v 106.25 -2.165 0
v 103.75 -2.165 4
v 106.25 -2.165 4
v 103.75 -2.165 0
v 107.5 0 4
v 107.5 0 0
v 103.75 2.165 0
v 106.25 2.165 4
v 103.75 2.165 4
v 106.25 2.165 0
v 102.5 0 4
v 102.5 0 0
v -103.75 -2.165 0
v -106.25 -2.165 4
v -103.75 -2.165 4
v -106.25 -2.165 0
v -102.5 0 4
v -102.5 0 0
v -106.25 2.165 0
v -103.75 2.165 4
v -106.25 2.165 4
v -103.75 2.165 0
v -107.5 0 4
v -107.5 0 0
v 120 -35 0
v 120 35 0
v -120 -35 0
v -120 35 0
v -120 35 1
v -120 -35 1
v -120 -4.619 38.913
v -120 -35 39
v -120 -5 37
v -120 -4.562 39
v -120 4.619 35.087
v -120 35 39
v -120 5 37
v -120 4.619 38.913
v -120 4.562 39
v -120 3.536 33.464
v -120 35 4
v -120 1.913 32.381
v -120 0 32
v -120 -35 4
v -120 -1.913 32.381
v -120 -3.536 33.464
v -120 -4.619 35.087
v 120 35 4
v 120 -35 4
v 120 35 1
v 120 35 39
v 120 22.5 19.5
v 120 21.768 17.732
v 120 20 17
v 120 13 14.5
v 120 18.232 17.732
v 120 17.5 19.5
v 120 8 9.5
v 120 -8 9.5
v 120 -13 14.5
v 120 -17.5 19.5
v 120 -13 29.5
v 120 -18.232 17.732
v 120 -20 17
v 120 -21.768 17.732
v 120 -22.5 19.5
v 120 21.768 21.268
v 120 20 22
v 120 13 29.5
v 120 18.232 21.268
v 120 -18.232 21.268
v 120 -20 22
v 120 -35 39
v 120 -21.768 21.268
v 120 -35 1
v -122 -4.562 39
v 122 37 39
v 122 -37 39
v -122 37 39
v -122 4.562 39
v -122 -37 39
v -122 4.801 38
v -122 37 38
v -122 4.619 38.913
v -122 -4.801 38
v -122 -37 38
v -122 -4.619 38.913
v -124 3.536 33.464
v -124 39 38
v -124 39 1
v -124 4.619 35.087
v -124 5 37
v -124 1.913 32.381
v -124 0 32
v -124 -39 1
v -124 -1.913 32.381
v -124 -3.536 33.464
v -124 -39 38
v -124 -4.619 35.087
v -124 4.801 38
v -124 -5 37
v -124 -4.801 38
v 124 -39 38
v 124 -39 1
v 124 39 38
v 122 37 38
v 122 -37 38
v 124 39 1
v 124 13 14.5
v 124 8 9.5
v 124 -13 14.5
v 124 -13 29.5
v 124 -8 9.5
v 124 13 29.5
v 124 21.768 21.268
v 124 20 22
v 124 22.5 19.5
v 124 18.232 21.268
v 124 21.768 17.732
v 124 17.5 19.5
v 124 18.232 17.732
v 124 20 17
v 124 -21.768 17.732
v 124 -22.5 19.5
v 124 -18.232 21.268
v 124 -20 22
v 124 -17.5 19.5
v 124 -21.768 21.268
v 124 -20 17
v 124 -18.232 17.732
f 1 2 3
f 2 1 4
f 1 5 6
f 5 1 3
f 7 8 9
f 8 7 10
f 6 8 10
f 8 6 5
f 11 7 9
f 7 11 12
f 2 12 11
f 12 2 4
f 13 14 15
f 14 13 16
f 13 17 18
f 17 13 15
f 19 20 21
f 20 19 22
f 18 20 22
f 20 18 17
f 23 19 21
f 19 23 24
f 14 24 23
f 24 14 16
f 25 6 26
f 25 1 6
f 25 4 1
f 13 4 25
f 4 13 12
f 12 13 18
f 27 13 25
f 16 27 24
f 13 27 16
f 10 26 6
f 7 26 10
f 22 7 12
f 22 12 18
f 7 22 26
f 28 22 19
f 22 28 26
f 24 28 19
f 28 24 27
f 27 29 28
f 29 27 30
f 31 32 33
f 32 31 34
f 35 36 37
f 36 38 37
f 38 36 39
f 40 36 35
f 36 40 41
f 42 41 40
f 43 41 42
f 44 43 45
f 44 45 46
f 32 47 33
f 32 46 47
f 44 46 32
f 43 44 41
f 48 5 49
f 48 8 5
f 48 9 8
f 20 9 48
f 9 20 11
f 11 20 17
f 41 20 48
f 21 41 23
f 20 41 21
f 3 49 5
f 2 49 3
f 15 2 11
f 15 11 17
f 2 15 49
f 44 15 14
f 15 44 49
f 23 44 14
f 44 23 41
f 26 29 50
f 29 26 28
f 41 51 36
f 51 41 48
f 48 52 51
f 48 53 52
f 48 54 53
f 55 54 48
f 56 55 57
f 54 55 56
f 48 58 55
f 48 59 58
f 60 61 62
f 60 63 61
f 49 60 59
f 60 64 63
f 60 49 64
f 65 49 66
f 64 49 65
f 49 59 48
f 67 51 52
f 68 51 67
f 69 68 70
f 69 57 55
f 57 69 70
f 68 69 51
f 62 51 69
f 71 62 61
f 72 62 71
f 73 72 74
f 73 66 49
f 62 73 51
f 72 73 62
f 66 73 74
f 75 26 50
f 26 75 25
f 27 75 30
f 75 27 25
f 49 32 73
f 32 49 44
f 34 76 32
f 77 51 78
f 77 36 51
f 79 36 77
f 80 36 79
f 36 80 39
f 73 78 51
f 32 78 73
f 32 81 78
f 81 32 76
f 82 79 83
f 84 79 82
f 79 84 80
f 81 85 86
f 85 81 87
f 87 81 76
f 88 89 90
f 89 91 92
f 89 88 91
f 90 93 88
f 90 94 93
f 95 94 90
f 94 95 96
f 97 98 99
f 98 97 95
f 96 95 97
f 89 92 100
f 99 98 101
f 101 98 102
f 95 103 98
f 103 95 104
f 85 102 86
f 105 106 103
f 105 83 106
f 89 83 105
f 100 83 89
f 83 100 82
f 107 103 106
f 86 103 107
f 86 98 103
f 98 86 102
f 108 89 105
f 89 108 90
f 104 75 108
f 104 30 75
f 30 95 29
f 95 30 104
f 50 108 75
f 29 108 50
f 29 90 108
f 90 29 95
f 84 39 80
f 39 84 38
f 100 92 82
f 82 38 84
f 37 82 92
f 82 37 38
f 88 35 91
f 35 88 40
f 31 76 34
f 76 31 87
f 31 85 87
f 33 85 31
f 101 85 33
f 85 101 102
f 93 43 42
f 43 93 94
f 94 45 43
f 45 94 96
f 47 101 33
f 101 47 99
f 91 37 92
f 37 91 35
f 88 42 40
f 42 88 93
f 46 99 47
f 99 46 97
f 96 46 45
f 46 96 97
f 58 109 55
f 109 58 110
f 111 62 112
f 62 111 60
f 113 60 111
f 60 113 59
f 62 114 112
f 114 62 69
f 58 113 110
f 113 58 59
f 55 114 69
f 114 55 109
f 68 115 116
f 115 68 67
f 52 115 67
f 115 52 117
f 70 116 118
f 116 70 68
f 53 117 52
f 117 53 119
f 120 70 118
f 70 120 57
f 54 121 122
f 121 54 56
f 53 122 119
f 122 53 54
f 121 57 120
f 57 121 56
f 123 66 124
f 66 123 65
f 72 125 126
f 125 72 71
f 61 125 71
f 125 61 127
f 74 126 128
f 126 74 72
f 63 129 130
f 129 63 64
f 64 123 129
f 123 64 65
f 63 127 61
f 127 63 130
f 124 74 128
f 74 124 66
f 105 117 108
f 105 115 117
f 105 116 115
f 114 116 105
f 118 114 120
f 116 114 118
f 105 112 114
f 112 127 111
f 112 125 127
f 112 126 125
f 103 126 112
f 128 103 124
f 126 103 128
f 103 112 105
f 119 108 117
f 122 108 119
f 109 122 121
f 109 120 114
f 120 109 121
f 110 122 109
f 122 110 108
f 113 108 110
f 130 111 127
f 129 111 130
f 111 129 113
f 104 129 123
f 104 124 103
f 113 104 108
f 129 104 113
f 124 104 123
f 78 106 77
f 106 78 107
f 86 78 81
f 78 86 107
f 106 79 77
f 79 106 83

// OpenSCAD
// OpenSCAD for the bottom of a box to hold the power supplies
//          110V 60hz to 12V conversion for Bert
//          Origin = center, bottom of bottom plate

height    = 35;        // Inside height (1/2 high)
length    =240;        // Inside length
thickness =  4;        // Wall and bottom thickness
width     = 70;        // Inside width

// Bottom plate. 
// x = length
// y = width
module base(x,y) {
    $fn=100;
    linear_extrude(thickness,center=true,convexity=10) {
       square([x,y],center=true); 
    }
}

module end(y,z) {
   linear_extrude(thickness,center=true,convexity=10) {
       square([y,z],center=true); 
    } 
}
module side(x,z) {
   linear_extrude(thickness,center=true,convexity=10) {
       square([x,z],center=true); 
    } 
}

module ac_wire_opening() {
    screw_separation = 40; // center-center between screws
    screw_radius = 2.5;    // screw hole in socket
    // Dimension C-13 female plug
    plug_height = 20;  // Socket height
    plug_width  = 26;  // Socket width
    plug_top_edge=16;
    plug_cut = (plug_width-plug_top_edge)/2; // diagonal
    
    
    linear_extrude(thickness+1,center=true,convexity=10) {
       polygon([[-plug_width/2,plug_height/2],
                [plug_width/2,plug_height/2],
                [plug_width/2,plug_cut-plug_height/2],
                [plug_width/2-plug_cut,-plug_height/2],
                [-plug_width/2+plug_cut,-plug_height/2],
                [-plug_width/2,plug_cut-plug_height/2]]); 
    } 
    translate([screw_separation/2,0,0])
    cylinder(thickness+1,screw_radius,screw_radius,true);
    translate([-screw_separation/2,0,0])
    cylinder(thickness+1,screw_radius,screw_radius,true);
}

module bottom_screw_holes(x) {
    dx = 15;           // Screw hole offset from end
    sr = 2.5;          // Radius for screw hole
    translate([x/2-dx,0,0])
    cylinder(thickness+1,sr,sr,true,$fn=6);
    translate([dx-x/2,0,0])
    cylinder(thickness+1,sr,sr,true,$fn=6);
}
// Half circle opening
module dc_wire_opening(z) {
    wr  = 5;    // Washer radius for 12V wires
    translate([0,z/2,0])
    cylinder(thickness+1,wr,wr,true);
}
// Edge on upper inside to for slide-on fit. Inside edge
module rim(x) {
    z = thickness/2;
    linear_extrude(height=x,center=true,convexity=10) {
        square([z,z],center=true); 
    }
}
  
// -------- Final Assembly --------
module final_assembly(x,y,z) {
    // Bottom
    color("gray")
    translate([0,0,thickness/2])
    difference() {
        base(x,y);
        bottom_screw_holes(x);
    }
    
    // DC End
    rotate([90,0,90])
    translate([0,(z+thickness)/2,-(x+thickness)/2])
    difference() {
        union() {
            color("red")
            rotate([0,90,0])
            translate([-thickness/4,z/2+thickness/4,0])
            rim(y);
            color("lightgreen")
            end(y+2*thickness,z+thickness/2);
        }
        dc_wire_opening(z);
    }
    
    // AC End
    rotate([90,0,90])
    translate([0,(z+thickness)/2,(x+thickness)/2])
    union() {
        difference() {
            color("green")
            end(y+2*thickness,z+thickness/2);
            ac_wire_opening();
        }
        color("red")
        rotate([0,90,0])
        translate([thickness/4,z/2+thickness/4,0])
        rim(y);
    }
    
    // Side
    rotate([90,0,0])
    translate([0,(z+thickness)/2,(y+thickness)/2])
    union() {
        color("green")
        side(x,z+thickness/2);
        rotate([0,90,0])
        translate([thickness/4,z/2+thickness/4,0])
        color("red")
        rim(x+thickness);
    }
    
    // Side
    rotate([90,0,0])
    translate([0,(z+thickness)/2,-(y+thickness)/2])
    union() {
        color("green")
        side(x,z+thickness/2);
        rotate([0,90,0])
        translate([-thickness/4,z/2+thickness/4,0])
        color("red")
        rim(x+thickness);
    }
    
}

final_assembly(length,width,height);
